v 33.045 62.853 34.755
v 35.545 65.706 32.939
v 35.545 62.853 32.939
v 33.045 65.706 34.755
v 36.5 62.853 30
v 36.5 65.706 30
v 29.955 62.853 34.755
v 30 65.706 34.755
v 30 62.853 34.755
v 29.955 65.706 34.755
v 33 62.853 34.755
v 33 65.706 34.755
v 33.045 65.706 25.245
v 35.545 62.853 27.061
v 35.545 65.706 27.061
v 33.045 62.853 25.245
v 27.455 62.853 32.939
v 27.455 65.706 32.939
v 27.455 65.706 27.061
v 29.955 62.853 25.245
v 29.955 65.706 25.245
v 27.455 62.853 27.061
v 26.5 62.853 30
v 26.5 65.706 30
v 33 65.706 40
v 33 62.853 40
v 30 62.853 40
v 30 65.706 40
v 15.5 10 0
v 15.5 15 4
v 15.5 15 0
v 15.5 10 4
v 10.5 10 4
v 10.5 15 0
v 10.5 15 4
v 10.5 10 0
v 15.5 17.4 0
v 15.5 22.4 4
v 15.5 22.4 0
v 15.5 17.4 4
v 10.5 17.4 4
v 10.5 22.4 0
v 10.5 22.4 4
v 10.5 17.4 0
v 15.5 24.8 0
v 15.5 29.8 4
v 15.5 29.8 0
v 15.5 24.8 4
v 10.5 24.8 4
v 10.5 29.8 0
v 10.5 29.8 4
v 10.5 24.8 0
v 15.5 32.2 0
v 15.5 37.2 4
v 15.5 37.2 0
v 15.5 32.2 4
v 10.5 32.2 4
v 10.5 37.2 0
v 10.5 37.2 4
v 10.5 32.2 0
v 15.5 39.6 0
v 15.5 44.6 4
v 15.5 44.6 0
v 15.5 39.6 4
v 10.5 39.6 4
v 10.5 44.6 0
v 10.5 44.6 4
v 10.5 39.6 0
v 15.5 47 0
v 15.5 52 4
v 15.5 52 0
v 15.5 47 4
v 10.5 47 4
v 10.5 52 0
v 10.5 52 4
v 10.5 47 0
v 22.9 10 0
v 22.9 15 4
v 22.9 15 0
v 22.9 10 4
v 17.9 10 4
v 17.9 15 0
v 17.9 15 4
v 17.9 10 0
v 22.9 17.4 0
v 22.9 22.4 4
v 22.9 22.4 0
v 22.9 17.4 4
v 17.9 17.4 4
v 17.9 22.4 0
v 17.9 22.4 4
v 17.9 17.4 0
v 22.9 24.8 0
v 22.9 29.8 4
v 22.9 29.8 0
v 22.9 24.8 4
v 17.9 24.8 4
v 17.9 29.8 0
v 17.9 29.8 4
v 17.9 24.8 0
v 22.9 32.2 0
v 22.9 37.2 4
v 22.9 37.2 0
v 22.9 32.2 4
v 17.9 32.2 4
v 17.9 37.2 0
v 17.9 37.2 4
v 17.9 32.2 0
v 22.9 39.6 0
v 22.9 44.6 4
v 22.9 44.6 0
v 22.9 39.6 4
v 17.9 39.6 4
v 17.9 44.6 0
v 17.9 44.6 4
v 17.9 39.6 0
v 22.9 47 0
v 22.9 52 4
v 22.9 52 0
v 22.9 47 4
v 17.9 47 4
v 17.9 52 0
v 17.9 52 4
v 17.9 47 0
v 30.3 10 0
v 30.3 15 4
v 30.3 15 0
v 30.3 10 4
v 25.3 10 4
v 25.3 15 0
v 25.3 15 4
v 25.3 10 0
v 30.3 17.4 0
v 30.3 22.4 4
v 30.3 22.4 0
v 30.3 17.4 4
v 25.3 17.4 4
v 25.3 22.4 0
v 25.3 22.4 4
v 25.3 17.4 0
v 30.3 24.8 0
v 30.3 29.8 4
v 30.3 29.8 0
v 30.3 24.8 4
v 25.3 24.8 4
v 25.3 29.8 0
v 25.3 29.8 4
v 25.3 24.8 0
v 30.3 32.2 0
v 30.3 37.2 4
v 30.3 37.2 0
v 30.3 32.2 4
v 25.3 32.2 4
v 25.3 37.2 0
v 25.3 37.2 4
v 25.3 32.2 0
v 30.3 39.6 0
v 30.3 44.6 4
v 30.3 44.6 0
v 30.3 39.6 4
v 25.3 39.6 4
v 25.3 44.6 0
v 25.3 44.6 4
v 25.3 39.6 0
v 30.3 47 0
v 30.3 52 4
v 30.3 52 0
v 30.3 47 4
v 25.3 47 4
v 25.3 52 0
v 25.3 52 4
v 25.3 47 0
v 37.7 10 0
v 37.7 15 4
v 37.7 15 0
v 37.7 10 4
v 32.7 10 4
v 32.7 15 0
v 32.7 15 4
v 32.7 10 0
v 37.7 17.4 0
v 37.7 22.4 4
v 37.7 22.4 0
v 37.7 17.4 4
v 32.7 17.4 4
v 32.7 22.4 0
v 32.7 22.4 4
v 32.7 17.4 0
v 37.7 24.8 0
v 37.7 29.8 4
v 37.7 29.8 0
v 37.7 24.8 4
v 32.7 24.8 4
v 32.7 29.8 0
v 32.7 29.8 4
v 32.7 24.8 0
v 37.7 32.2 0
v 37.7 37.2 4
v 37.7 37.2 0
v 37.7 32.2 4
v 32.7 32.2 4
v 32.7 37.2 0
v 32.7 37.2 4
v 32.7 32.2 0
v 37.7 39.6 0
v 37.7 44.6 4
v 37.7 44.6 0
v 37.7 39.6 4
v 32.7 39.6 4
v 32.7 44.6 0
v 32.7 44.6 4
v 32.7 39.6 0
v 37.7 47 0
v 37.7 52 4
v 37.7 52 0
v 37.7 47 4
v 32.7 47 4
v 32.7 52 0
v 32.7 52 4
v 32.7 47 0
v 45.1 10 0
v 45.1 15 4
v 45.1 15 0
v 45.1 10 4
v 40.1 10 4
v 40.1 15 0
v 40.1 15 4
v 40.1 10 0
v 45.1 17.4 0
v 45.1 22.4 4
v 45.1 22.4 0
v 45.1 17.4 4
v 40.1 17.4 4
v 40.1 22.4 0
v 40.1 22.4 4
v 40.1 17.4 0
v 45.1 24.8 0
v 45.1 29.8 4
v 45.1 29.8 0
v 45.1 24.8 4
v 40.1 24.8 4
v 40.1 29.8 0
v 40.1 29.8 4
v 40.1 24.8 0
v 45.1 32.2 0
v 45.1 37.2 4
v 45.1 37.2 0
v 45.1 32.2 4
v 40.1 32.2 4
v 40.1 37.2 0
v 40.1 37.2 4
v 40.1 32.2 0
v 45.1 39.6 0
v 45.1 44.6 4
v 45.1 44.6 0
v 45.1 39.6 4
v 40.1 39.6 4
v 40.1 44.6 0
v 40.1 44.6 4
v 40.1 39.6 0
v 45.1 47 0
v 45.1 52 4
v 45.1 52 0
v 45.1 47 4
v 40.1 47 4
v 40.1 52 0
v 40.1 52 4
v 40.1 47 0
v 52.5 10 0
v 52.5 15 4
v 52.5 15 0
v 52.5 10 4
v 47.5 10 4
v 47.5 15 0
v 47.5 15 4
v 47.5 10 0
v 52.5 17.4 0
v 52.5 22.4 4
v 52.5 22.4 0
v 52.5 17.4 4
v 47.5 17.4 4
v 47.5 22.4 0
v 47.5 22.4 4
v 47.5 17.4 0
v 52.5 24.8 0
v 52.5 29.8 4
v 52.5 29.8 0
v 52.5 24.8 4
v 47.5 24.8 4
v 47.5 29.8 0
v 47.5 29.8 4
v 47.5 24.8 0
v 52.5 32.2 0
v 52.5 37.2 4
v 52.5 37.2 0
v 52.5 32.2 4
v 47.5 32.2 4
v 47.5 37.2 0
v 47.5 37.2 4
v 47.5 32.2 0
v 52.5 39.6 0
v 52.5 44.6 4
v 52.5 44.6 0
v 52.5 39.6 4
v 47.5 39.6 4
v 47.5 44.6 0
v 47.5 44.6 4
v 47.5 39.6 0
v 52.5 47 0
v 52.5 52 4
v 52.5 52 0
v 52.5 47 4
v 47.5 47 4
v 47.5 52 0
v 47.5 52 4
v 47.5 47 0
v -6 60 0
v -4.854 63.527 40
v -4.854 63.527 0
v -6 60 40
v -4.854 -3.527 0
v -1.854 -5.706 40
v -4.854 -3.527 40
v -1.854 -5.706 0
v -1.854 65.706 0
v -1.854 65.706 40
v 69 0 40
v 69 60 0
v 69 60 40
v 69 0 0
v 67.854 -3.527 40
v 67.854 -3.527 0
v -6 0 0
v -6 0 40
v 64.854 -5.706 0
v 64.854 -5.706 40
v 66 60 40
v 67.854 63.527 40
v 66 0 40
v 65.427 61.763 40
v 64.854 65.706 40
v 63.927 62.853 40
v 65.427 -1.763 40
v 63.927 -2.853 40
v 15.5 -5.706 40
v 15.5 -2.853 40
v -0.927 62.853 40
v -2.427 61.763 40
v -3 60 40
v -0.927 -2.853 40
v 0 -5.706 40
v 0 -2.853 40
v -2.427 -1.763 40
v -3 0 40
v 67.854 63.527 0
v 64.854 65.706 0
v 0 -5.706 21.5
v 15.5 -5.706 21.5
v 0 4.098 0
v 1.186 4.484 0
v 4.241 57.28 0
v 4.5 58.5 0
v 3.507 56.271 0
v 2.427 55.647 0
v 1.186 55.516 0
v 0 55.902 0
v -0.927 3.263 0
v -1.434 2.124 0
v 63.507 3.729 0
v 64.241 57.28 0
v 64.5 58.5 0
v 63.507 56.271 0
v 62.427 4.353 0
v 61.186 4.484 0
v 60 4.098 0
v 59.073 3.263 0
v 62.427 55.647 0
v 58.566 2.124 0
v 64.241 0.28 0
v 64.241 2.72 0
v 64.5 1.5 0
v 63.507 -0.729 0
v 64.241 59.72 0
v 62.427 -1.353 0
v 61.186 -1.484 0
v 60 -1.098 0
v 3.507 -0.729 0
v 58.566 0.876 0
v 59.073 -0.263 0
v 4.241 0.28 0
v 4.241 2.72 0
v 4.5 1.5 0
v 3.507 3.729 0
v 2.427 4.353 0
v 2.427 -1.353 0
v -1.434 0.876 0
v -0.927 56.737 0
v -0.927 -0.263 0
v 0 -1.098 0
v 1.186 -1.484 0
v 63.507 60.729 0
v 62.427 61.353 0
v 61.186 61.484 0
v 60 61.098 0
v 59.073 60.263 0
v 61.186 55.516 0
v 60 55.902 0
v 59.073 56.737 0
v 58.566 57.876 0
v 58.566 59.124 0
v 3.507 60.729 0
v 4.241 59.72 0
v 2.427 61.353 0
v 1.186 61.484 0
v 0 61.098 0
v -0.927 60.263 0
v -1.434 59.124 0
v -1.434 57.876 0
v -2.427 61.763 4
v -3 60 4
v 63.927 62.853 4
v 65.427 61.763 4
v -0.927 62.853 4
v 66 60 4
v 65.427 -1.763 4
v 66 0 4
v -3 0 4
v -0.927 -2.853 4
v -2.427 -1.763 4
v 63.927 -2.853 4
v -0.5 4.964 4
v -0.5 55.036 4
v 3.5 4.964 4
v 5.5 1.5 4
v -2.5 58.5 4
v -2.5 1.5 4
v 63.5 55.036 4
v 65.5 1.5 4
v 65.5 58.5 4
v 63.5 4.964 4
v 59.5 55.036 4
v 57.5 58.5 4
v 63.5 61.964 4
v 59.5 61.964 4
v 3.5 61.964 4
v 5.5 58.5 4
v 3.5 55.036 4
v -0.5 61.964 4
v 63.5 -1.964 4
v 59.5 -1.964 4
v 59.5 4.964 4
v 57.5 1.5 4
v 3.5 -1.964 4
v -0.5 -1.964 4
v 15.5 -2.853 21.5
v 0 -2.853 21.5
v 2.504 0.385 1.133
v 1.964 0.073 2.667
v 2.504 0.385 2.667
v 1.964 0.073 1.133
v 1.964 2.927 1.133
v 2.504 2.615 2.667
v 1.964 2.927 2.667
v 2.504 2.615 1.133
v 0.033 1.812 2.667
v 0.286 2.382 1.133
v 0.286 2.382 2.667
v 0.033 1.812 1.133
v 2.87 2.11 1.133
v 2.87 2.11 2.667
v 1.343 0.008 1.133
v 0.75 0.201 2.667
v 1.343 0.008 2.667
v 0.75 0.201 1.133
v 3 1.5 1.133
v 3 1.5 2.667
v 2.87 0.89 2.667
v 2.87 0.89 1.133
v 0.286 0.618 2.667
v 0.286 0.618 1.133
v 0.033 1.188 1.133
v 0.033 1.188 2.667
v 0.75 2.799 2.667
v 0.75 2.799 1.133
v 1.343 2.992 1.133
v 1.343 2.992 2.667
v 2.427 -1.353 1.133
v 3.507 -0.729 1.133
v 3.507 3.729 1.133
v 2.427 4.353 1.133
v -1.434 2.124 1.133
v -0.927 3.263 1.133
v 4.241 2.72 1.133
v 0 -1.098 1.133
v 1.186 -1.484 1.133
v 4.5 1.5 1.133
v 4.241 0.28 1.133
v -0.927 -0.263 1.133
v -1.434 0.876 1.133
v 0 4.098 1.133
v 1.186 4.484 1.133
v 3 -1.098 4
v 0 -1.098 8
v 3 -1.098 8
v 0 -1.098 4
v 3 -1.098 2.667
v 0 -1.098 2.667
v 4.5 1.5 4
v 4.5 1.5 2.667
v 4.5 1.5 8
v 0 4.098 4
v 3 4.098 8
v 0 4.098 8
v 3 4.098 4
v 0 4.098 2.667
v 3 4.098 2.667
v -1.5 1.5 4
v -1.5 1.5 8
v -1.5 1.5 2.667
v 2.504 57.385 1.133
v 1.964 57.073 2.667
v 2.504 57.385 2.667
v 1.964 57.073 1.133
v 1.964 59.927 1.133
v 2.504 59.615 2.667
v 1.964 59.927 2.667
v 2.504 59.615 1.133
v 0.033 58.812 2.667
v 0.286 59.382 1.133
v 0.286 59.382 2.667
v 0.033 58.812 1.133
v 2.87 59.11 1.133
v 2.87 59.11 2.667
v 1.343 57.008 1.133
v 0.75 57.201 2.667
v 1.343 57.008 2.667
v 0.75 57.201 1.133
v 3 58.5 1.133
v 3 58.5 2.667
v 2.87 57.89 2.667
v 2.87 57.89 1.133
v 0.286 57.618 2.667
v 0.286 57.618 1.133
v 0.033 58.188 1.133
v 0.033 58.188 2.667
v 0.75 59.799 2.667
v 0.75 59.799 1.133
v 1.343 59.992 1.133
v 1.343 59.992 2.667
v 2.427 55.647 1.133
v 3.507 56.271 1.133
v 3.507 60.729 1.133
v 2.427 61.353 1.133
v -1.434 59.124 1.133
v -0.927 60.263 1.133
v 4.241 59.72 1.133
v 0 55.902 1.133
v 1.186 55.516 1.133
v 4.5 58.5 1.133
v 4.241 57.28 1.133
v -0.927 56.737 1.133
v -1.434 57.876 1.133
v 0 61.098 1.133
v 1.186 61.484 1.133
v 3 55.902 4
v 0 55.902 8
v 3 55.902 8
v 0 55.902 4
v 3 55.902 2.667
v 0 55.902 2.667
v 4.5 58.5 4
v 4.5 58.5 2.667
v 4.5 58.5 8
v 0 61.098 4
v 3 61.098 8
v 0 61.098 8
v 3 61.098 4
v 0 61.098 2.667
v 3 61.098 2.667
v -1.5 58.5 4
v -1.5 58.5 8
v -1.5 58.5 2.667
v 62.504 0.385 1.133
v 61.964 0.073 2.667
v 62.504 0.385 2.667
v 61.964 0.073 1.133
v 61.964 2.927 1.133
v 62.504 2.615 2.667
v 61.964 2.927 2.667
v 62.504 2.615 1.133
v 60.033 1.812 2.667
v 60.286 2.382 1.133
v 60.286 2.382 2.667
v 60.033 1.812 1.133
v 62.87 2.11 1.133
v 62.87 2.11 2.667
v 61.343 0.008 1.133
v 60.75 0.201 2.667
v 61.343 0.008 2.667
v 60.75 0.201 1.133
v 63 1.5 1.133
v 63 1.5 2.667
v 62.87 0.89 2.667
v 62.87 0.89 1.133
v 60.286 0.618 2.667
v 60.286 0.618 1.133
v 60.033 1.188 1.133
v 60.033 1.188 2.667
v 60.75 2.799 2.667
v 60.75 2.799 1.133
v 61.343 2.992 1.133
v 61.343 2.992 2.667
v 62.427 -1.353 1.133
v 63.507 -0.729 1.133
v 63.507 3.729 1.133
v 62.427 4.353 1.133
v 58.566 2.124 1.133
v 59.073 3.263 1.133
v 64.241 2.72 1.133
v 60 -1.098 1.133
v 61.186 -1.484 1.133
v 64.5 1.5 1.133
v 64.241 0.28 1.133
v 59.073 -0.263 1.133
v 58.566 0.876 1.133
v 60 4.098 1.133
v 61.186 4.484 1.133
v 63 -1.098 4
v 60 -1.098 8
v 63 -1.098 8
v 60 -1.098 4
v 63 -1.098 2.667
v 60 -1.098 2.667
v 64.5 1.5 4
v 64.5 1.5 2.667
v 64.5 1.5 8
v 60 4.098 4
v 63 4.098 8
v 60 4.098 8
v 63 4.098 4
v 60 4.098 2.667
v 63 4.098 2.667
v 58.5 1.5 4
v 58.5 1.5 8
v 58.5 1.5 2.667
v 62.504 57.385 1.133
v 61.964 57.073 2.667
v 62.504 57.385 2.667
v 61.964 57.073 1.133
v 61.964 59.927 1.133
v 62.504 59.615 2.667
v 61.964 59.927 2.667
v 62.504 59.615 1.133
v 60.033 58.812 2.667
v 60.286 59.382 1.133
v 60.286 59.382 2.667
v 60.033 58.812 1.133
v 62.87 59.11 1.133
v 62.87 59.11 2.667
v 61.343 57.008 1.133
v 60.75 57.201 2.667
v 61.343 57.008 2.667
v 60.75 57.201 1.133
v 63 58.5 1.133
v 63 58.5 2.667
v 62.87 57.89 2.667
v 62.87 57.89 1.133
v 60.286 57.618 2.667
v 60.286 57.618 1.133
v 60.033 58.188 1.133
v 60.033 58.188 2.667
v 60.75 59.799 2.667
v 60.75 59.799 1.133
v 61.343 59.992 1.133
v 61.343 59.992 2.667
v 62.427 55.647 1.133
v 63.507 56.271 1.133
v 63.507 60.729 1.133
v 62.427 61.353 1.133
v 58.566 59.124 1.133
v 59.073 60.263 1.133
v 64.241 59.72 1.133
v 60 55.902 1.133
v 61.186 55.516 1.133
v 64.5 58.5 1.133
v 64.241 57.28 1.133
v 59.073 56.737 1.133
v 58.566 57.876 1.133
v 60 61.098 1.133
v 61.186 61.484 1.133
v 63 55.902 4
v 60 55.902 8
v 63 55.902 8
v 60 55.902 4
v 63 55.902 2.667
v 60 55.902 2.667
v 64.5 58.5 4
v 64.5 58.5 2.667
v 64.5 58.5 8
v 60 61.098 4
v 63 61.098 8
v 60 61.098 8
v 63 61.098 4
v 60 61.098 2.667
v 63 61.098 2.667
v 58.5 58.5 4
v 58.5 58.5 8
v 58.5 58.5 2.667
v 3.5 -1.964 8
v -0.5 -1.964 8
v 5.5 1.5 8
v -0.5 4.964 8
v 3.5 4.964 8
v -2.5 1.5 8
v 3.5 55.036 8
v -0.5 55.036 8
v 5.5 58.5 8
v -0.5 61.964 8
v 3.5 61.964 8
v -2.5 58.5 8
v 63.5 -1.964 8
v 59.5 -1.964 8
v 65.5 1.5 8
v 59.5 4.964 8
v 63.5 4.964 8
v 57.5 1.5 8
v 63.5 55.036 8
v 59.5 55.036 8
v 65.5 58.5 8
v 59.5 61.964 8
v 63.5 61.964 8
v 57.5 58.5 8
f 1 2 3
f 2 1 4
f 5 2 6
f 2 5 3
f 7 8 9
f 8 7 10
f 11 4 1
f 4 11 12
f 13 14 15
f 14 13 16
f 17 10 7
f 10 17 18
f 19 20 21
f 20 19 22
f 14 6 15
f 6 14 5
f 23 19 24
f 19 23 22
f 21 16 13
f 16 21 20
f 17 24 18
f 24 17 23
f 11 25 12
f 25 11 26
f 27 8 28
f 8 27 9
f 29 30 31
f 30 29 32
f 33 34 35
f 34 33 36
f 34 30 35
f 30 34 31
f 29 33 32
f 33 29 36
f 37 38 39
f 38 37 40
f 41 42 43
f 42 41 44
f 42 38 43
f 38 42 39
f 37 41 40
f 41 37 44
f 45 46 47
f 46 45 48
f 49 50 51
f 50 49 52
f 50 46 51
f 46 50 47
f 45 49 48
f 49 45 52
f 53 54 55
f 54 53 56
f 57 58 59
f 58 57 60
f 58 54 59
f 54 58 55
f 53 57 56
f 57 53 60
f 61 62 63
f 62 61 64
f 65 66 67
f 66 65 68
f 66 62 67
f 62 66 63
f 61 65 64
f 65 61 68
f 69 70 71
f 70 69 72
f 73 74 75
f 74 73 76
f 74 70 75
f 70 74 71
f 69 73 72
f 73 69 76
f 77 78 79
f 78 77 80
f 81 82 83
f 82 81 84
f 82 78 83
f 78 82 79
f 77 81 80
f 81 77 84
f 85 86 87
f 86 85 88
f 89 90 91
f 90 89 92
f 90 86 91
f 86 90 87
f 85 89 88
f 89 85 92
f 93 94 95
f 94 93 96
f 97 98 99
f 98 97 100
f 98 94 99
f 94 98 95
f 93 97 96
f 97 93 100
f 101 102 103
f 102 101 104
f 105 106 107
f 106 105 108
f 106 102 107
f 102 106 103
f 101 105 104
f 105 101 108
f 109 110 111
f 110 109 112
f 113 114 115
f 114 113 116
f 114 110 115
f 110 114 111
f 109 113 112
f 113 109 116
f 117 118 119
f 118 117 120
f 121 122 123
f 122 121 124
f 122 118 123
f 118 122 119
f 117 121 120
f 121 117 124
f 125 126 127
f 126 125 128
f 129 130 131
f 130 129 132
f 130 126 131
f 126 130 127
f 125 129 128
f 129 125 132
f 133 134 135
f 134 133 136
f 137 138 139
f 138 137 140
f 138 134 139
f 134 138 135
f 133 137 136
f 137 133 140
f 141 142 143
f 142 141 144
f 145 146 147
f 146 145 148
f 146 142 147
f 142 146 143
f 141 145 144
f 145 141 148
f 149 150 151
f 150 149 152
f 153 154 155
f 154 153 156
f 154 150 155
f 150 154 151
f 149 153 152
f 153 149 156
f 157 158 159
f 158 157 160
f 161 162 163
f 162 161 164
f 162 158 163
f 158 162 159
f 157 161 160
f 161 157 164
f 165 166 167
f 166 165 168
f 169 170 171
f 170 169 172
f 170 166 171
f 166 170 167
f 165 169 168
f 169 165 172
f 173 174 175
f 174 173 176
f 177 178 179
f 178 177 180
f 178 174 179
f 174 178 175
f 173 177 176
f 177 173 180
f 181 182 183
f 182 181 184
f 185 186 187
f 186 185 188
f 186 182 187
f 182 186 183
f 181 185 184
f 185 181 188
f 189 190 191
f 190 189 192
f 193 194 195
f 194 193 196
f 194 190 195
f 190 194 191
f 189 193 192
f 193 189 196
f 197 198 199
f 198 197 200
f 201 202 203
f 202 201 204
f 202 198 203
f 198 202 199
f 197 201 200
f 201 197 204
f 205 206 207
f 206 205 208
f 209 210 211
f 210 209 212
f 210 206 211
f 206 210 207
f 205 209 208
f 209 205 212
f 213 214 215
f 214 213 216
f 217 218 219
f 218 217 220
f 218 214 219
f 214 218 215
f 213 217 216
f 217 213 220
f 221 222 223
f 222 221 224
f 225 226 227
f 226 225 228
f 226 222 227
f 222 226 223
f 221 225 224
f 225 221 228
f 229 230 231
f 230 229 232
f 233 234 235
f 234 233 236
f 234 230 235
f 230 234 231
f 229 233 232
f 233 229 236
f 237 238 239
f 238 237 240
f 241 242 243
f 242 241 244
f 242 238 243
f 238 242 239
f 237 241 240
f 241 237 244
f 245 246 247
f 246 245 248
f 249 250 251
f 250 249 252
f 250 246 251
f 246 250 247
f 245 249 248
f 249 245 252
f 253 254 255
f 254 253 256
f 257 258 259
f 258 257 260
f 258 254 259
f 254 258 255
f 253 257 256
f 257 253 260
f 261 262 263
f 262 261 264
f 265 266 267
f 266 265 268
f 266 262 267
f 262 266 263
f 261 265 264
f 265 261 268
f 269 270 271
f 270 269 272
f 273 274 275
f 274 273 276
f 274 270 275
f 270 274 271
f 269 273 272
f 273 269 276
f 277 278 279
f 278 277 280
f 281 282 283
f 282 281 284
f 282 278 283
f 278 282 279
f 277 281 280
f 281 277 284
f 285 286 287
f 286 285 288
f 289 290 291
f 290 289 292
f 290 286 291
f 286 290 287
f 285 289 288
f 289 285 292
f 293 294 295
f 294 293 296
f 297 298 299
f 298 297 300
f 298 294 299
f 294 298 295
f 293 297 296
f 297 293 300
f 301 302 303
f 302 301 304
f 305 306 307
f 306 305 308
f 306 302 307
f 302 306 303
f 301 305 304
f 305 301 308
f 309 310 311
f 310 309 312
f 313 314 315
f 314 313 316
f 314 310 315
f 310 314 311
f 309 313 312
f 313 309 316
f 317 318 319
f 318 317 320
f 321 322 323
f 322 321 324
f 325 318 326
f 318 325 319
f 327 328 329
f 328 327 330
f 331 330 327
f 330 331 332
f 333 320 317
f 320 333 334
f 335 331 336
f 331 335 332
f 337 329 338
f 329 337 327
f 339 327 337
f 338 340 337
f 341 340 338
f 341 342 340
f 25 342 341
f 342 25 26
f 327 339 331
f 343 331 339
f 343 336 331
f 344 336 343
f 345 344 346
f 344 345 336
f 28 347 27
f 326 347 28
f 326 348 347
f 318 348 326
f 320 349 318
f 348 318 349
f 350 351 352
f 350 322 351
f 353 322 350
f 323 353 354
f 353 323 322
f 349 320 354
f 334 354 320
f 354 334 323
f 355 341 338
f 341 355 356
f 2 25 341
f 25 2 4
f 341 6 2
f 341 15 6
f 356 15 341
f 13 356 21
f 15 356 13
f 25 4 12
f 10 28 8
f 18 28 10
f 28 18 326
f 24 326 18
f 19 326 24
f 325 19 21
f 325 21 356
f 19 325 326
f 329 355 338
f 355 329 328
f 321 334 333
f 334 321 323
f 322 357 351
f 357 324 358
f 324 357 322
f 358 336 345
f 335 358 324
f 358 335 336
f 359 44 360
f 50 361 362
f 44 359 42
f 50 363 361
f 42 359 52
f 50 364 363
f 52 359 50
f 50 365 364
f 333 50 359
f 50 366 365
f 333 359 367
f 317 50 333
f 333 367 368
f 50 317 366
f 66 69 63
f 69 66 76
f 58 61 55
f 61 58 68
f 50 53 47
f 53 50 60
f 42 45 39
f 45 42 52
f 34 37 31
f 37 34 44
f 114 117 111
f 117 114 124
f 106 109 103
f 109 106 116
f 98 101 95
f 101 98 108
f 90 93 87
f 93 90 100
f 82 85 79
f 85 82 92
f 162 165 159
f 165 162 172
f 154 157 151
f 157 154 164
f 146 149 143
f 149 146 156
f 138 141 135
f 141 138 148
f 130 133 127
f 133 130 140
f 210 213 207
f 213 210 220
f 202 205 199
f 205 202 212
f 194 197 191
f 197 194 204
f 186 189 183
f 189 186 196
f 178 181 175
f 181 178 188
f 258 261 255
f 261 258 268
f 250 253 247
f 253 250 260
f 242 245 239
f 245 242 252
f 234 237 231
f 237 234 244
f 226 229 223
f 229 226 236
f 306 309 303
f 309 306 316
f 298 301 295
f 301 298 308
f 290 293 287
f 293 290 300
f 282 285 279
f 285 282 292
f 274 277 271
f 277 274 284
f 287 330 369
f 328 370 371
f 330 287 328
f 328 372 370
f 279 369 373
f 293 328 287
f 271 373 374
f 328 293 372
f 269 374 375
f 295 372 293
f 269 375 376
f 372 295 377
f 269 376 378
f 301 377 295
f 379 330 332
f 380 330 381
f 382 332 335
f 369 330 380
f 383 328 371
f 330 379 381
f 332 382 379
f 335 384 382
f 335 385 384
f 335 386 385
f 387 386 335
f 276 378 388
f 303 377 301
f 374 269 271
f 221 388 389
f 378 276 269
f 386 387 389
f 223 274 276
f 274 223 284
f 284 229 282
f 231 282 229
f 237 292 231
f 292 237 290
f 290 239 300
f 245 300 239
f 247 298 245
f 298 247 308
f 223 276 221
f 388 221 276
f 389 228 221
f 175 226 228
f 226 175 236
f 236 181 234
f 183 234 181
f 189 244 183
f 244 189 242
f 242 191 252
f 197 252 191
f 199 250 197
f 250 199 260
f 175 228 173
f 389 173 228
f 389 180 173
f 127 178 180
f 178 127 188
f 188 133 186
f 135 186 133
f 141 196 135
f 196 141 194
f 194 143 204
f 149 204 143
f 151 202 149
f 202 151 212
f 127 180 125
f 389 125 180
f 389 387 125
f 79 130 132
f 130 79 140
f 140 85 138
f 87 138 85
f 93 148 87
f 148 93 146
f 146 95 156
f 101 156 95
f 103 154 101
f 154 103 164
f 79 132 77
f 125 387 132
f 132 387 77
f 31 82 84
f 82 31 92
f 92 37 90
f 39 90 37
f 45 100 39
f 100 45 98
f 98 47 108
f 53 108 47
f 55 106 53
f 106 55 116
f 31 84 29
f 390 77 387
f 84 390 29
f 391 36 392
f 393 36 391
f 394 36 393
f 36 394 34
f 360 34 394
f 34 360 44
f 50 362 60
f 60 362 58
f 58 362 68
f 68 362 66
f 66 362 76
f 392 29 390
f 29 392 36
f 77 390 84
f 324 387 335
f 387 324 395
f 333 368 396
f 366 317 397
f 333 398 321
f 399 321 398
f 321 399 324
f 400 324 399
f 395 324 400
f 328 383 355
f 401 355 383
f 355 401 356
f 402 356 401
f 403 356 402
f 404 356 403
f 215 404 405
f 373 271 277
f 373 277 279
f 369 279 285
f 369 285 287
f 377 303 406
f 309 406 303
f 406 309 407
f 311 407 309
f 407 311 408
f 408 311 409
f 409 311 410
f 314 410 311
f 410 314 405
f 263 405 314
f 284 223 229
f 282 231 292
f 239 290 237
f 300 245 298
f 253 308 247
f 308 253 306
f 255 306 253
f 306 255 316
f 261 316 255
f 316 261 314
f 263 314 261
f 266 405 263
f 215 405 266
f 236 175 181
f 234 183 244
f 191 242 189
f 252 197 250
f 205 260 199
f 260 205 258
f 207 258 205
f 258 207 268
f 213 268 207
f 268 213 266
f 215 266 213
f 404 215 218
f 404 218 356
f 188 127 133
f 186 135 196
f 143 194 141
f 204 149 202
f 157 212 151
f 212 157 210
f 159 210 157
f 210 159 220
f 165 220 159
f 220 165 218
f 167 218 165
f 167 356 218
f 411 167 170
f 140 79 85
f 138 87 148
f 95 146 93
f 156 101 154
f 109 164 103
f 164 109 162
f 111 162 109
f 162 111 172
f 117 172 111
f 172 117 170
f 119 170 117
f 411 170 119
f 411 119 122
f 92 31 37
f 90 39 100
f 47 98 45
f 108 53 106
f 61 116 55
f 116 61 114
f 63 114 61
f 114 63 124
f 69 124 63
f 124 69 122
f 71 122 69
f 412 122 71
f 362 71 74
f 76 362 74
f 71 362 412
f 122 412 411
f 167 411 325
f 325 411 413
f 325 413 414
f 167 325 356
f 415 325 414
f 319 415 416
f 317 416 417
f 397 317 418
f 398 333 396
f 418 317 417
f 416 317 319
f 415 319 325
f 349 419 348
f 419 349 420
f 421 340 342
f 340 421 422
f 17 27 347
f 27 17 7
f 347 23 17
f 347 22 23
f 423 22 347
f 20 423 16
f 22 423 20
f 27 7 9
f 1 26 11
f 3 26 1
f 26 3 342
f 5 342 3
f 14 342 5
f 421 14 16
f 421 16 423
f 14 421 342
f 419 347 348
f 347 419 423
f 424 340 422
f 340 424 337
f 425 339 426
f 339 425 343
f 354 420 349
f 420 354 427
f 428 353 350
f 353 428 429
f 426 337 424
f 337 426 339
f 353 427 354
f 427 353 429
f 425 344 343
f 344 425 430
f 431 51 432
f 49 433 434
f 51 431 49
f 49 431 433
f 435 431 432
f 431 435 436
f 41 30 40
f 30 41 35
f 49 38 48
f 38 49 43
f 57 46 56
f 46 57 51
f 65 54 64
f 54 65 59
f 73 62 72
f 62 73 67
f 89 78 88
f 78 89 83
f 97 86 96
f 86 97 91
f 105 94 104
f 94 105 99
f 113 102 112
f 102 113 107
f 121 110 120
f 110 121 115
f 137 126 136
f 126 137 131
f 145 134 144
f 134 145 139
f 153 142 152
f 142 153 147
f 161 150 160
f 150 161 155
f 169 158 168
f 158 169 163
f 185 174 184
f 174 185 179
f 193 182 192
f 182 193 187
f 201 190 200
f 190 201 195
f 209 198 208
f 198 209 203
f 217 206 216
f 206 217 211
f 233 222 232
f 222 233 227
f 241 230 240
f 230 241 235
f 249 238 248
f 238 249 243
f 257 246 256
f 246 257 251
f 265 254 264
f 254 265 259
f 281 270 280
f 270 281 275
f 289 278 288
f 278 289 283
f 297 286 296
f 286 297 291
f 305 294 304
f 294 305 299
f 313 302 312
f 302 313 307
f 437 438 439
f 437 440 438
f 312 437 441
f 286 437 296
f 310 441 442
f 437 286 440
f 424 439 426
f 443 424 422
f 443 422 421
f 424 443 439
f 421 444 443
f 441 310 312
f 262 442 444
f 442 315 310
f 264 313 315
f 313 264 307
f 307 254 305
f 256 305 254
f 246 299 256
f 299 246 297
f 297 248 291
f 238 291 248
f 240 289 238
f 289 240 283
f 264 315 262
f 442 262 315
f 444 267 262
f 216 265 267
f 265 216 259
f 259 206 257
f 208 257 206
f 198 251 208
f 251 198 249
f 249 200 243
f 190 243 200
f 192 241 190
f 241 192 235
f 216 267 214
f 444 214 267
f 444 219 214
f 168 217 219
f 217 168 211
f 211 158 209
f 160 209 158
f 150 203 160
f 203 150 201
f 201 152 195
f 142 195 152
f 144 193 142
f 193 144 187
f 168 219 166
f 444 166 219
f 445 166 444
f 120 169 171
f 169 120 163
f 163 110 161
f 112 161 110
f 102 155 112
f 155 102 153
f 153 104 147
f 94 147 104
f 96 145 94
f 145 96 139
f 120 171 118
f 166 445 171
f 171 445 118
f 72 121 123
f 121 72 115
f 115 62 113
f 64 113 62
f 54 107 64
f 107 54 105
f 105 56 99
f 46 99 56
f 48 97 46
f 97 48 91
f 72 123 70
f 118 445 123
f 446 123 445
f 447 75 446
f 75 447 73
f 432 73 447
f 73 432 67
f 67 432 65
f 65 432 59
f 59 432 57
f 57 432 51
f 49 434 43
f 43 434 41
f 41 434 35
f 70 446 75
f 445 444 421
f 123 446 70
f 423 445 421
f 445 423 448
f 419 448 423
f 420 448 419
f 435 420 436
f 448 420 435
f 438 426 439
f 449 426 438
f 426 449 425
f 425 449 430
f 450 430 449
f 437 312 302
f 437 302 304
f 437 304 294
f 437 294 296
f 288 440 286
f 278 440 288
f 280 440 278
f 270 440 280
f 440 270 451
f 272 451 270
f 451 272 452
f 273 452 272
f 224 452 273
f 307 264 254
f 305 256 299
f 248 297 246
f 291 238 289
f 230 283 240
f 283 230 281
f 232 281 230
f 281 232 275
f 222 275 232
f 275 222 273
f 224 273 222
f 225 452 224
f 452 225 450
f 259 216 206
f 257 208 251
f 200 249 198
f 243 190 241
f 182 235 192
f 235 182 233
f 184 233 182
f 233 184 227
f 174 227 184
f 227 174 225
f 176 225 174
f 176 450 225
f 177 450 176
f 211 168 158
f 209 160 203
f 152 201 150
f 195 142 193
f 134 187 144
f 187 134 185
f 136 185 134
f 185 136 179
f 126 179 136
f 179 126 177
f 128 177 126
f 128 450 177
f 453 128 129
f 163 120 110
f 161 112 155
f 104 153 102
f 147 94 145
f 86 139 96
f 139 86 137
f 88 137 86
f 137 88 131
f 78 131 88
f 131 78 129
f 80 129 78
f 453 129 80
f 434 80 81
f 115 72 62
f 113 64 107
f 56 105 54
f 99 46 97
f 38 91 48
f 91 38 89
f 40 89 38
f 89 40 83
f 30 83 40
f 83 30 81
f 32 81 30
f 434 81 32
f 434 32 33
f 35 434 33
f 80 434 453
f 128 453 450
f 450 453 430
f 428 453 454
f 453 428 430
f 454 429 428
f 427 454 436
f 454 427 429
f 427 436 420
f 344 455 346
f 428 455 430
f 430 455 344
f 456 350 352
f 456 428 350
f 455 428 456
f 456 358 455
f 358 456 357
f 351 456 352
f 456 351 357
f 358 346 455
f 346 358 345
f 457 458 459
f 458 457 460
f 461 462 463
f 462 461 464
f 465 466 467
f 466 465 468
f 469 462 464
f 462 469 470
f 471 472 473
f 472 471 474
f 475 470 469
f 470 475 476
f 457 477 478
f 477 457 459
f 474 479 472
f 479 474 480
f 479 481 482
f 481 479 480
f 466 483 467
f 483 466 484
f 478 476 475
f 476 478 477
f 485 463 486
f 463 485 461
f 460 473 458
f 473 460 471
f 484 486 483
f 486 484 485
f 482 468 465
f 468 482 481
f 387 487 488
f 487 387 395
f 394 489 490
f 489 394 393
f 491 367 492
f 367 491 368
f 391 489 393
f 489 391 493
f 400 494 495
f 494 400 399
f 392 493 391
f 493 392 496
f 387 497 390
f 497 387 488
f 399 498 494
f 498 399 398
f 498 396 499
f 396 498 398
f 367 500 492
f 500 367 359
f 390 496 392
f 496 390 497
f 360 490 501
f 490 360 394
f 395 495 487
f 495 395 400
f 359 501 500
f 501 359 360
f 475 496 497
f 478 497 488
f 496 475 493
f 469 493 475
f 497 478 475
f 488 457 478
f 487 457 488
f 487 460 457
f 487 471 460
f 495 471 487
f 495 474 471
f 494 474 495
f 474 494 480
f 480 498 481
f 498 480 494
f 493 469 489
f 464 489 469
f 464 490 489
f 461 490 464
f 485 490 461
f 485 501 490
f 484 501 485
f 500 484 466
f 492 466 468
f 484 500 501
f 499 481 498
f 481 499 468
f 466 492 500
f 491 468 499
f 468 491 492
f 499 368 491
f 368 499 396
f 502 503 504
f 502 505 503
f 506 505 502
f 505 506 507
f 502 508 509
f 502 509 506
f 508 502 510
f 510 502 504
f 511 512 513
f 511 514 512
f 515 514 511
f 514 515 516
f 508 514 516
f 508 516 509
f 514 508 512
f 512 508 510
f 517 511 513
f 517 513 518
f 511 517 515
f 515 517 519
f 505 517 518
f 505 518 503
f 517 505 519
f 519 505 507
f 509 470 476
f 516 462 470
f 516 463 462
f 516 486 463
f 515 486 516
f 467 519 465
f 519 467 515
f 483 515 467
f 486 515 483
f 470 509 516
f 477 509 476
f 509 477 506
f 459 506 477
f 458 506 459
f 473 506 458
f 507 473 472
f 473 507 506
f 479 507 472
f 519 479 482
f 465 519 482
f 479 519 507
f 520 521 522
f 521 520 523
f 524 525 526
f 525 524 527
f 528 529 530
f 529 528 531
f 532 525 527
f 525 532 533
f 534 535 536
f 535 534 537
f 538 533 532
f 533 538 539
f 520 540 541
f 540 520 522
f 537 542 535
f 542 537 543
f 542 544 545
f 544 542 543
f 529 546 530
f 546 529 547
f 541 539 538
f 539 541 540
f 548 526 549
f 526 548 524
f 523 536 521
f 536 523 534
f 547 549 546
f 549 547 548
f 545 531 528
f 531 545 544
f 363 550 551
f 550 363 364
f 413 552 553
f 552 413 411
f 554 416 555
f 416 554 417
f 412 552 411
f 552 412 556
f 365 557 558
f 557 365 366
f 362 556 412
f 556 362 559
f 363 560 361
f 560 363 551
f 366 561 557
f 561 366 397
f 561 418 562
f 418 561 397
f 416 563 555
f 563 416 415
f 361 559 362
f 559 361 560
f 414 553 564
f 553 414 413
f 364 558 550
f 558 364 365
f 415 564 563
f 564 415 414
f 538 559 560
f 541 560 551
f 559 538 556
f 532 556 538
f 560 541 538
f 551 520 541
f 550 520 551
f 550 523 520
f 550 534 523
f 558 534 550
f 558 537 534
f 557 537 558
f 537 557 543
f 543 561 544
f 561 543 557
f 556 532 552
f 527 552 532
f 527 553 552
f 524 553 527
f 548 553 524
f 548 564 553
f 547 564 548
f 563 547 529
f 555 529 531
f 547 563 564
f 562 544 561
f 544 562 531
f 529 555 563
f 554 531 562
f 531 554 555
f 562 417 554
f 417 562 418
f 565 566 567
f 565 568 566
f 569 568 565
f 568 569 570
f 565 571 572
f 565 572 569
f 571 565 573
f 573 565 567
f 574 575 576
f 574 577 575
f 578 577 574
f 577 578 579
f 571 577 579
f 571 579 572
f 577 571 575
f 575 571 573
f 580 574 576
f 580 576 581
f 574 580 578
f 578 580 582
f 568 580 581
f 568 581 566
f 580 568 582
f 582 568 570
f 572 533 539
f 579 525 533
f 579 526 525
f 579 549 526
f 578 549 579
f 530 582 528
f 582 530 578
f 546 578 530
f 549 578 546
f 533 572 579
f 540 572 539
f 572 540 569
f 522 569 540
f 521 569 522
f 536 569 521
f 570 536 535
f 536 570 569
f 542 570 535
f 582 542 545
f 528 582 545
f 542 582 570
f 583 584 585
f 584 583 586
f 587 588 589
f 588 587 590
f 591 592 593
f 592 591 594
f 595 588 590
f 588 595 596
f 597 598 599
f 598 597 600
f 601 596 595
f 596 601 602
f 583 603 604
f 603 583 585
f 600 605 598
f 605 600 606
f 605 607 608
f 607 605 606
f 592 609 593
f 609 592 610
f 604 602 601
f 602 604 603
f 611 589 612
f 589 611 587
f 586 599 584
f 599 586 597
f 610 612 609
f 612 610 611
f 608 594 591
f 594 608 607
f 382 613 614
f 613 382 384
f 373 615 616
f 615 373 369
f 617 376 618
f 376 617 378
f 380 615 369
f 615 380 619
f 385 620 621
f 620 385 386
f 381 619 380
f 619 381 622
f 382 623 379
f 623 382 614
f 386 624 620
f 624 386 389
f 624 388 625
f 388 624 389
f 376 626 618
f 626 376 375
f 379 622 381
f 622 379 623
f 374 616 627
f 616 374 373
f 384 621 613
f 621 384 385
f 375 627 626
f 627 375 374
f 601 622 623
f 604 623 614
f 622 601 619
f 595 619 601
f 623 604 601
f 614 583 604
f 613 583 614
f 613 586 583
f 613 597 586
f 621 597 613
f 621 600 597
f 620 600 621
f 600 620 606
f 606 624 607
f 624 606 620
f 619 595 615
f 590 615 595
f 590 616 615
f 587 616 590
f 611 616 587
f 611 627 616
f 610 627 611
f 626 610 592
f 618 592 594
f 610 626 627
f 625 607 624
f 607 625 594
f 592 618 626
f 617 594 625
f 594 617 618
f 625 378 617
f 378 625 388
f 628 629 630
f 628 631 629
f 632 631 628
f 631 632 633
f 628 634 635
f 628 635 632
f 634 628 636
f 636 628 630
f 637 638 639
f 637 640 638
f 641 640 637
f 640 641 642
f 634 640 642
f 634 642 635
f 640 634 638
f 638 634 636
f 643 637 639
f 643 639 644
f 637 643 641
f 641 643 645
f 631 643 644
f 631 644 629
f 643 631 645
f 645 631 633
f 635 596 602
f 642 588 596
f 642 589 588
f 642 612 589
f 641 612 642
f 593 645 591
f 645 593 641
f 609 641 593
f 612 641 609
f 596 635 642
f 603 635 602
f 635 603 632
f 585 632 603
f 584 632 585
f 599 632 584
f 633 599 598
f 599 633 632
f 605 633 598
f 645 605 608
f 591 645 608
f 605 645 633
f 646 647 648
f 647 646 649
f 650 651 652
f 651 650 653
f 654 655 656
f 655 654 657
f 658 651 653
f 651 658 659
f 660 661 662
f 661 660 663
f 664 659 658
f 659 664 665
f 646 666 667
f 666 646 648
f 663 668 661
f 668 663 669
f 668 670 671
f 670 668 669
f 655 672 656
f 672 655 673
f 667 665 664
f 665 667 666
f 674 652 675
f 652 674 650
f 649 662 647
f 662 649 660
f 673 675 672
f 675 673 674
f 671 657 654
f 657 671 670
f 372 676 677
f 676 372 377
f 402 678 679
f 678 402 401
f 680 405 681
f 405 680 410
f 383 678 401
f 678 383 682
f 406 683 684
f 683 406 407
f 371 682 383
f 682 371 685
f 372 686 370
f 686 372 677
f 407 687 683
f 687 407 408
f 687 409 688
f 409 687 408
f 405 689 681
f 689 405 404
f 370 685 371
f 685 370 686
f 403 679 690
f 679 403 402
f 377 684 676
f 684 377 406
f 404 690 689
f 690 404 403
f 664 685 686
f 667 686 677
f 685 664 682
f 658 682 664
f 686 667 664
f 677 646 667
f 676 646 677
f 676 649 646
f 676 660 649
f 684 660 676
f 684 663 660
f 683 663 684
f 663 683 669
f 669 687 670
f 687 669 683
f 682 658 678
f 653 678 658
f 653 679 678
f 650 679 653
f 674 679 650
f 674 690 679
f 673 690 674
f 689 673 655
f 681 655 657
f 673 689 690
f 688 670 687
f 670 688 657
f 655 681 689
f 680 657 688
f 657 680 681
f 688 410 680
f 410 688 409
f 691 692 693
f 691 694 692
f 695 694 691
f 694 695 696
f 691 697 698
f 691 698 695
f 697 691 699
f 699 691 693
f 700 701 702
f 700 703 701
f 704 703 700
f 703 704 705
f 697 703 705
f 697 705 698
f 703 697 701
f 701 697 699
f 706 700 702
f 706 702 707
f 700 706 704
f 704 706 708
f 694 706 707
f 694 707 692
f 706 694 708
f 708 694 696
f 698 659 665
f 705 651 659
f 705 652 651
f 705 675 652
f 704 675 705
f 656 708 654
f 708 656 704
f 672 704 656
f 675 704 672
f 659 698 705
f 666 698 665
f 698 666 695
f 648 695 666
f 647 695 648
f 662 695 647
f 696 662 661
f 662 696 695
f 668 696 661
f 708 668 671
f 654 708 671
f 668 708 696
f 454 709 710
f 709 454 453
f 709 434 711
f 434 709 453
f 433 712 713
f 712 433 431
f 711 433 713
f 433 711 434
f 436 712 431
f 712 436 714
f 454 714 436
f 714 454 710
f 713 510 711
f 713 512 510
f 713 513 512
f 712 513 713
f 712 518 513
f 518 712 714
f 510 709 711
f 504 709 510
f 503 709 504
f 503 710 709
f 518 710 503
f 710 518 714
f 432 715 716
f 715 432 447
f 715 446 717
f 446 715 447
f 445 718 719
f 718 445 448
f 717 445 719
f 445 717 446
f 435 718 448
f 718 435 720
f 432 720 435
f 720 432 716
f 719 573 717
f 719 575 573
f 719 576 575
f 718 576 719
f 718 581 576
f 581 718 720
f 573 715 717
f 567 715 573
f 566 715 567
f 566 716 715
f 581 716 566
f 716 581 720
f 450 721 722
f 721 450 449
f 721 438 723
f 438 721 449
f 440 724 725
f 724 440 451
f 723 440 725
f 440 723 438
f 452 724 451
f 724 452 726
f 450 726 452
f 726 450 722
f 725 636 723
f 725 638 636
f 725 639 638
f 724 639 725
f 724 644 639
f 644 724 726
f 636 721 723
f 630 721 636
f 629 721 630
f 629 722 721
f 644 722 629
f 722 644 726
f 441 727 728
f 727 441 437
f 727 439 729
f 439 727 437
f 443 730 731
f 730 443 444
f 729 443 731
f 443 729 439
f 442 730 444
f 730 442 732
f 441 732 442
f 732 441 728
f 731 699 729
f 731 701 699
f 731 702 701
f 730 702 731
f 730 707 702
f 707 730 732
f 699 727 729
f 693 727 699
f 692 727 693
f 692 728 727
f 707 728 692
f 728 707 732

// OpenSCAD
// file: standoff.scad
BASE_THICKNESS = 4;
PIN_HEIGHT = 6;
PIN_DIAMETER = 3;
STANDOFF_INNER_DIA = 6;

STANDOFF_WIDTH=63;
STANDOFF_DEPTH=60;

PIN_COORDINATES = [
    [0, 0, 0],
    [0, STANDOFF_DEPTH - PIN_DIAMETER, 0],
    [STANDOFF_WIDTH - PIN_DIAMETER, 0, 0],
    [STANDOFF_WIDTH - PIN_DIAMETER, STANDOFF_DEPTH - PIN_DIAMETER, 0]
];

module screw_holes(thickness = BASE_THICKNESS, diameter = PIN_DIAMETER, with_standoff_cutout = false) {        
    _offset = diameter / 2;

    translate([diameter/2, diameter/2, 0]) union() {
        translate([0,0,-1])
        linear_extrude(height = thickness + 4) 
        circle(d=diameter, $fn=15);

        translate([0,0,-0.2])
        linear_extrude(height = thickness / 3) 
        circle(d=diameter + 3, $fn=15);

        if (with_standoff_cutout) {
            difference() {
                translate([0,0,thickness/1.5]) standoff();
            }
        }
    }
}

module standoff(diameter = STANDOFF_INNER_DIA) { 
    cylinder(h=10, d=diameter, $fn=6);
}

module standoff_outer(diameter = STANDOFF_INNER_DIA) {
    cylinder(h=4, d=diameter + 2, $fn=6);
}

module standoff_holder(diameter = PIN_DIAMETER, thickness = BASE_THICKNESS) {
    translate([diameter / 2, diameter / 2, 0]) difference() {
        standoff_outer();
        translate([0,0,-1]) standoff();
    }
}

function pin_coords(positions) = [ 0 : len(positions) - 1 ];

module pegs(type="screw_holes", positions = PIN_COORDINATES, with_standoff_cutout = false) {
    for (p = pin_coords(positions)) {
        if (type == "screw_holes") {
            translate(positions[p]) screw_holes(with_standoff_cutout = with_standoff_cutout);
        } else if (type == "standoff_holder") {
            translate(positions[p]) standoff_holder();
        }
    }
}
// main file
include <./standoff.scad>;

$fn=10;

PIN_WIDTHS=63;
PIN_DEPTH=60;
BASE_THICKNESS = 4;
CASE_HEIGHT = 40;
POWER_OPENING = 10;

module air_holes(pin_widths = PIN_WIDTHS, pin_depth = PIN_DEPTH) {
    cube_size=5;
    count = 5;
    width = pin_widths * (2/3);
    offset = (width - cube_size) / count;

    translate([pin_widths * 1/6, pin_depth * 1/6,0]) {
        for (x=[0:count]) {
            for (y=[0:count]) {
                translate([offset * x, offset * y, -10]) cube([cube_size,cube_size,100]);
            }
        }
    }
}

module case(case_height = CASE_HEIGHT, pin_widths = PIN_WIDTHS, pin_depth = PIN_DEPTH, base_thickness = BASE_THICKNESS) {
    module shell() {
        difference() {
            union() {
                linear_extrude(height=case_height) 
                minkowski() {
                    square([pin_widths, pin_depth]);
                    circle(6);
                }
            }

            translate([0,0,base_thickness])
            linear_extrude(height=case_height) 
            minkowski() {
                square([pin_widths, pin_depth]);
                circle(3);
            }
            
            power_cutout();
            cord_hole(opening=10);
            air_holes();
        }
    }

    module power_cutout() {
        plate_x = 15.5;
        plate_y = 18.5;
        
        translate([0,-10,case_height - plate_y]) linear_extrude(height=plate_y) square([plate_x,10]);
    }
    
    module cord_hole(opening = 10) {
        height = 20;

        translate([pin_widths/2, pin_depth + 10, case_height]) {
            translate([0, 0, -opening]) 
            rotate([90,0,0]) 
            color("brown") 
            cylinder(d=opening,h=height, center=true);

            cube([3, height, opening + 1], center=true);
        }
    }

    difference() {
        shell();
        pegs(with_standoff_cutout = true);
    }
    
    translate([ 0, 0, BASE_THICKNESS]) pegs(type="standoff_holder");
}

case();

echo(version=version());
